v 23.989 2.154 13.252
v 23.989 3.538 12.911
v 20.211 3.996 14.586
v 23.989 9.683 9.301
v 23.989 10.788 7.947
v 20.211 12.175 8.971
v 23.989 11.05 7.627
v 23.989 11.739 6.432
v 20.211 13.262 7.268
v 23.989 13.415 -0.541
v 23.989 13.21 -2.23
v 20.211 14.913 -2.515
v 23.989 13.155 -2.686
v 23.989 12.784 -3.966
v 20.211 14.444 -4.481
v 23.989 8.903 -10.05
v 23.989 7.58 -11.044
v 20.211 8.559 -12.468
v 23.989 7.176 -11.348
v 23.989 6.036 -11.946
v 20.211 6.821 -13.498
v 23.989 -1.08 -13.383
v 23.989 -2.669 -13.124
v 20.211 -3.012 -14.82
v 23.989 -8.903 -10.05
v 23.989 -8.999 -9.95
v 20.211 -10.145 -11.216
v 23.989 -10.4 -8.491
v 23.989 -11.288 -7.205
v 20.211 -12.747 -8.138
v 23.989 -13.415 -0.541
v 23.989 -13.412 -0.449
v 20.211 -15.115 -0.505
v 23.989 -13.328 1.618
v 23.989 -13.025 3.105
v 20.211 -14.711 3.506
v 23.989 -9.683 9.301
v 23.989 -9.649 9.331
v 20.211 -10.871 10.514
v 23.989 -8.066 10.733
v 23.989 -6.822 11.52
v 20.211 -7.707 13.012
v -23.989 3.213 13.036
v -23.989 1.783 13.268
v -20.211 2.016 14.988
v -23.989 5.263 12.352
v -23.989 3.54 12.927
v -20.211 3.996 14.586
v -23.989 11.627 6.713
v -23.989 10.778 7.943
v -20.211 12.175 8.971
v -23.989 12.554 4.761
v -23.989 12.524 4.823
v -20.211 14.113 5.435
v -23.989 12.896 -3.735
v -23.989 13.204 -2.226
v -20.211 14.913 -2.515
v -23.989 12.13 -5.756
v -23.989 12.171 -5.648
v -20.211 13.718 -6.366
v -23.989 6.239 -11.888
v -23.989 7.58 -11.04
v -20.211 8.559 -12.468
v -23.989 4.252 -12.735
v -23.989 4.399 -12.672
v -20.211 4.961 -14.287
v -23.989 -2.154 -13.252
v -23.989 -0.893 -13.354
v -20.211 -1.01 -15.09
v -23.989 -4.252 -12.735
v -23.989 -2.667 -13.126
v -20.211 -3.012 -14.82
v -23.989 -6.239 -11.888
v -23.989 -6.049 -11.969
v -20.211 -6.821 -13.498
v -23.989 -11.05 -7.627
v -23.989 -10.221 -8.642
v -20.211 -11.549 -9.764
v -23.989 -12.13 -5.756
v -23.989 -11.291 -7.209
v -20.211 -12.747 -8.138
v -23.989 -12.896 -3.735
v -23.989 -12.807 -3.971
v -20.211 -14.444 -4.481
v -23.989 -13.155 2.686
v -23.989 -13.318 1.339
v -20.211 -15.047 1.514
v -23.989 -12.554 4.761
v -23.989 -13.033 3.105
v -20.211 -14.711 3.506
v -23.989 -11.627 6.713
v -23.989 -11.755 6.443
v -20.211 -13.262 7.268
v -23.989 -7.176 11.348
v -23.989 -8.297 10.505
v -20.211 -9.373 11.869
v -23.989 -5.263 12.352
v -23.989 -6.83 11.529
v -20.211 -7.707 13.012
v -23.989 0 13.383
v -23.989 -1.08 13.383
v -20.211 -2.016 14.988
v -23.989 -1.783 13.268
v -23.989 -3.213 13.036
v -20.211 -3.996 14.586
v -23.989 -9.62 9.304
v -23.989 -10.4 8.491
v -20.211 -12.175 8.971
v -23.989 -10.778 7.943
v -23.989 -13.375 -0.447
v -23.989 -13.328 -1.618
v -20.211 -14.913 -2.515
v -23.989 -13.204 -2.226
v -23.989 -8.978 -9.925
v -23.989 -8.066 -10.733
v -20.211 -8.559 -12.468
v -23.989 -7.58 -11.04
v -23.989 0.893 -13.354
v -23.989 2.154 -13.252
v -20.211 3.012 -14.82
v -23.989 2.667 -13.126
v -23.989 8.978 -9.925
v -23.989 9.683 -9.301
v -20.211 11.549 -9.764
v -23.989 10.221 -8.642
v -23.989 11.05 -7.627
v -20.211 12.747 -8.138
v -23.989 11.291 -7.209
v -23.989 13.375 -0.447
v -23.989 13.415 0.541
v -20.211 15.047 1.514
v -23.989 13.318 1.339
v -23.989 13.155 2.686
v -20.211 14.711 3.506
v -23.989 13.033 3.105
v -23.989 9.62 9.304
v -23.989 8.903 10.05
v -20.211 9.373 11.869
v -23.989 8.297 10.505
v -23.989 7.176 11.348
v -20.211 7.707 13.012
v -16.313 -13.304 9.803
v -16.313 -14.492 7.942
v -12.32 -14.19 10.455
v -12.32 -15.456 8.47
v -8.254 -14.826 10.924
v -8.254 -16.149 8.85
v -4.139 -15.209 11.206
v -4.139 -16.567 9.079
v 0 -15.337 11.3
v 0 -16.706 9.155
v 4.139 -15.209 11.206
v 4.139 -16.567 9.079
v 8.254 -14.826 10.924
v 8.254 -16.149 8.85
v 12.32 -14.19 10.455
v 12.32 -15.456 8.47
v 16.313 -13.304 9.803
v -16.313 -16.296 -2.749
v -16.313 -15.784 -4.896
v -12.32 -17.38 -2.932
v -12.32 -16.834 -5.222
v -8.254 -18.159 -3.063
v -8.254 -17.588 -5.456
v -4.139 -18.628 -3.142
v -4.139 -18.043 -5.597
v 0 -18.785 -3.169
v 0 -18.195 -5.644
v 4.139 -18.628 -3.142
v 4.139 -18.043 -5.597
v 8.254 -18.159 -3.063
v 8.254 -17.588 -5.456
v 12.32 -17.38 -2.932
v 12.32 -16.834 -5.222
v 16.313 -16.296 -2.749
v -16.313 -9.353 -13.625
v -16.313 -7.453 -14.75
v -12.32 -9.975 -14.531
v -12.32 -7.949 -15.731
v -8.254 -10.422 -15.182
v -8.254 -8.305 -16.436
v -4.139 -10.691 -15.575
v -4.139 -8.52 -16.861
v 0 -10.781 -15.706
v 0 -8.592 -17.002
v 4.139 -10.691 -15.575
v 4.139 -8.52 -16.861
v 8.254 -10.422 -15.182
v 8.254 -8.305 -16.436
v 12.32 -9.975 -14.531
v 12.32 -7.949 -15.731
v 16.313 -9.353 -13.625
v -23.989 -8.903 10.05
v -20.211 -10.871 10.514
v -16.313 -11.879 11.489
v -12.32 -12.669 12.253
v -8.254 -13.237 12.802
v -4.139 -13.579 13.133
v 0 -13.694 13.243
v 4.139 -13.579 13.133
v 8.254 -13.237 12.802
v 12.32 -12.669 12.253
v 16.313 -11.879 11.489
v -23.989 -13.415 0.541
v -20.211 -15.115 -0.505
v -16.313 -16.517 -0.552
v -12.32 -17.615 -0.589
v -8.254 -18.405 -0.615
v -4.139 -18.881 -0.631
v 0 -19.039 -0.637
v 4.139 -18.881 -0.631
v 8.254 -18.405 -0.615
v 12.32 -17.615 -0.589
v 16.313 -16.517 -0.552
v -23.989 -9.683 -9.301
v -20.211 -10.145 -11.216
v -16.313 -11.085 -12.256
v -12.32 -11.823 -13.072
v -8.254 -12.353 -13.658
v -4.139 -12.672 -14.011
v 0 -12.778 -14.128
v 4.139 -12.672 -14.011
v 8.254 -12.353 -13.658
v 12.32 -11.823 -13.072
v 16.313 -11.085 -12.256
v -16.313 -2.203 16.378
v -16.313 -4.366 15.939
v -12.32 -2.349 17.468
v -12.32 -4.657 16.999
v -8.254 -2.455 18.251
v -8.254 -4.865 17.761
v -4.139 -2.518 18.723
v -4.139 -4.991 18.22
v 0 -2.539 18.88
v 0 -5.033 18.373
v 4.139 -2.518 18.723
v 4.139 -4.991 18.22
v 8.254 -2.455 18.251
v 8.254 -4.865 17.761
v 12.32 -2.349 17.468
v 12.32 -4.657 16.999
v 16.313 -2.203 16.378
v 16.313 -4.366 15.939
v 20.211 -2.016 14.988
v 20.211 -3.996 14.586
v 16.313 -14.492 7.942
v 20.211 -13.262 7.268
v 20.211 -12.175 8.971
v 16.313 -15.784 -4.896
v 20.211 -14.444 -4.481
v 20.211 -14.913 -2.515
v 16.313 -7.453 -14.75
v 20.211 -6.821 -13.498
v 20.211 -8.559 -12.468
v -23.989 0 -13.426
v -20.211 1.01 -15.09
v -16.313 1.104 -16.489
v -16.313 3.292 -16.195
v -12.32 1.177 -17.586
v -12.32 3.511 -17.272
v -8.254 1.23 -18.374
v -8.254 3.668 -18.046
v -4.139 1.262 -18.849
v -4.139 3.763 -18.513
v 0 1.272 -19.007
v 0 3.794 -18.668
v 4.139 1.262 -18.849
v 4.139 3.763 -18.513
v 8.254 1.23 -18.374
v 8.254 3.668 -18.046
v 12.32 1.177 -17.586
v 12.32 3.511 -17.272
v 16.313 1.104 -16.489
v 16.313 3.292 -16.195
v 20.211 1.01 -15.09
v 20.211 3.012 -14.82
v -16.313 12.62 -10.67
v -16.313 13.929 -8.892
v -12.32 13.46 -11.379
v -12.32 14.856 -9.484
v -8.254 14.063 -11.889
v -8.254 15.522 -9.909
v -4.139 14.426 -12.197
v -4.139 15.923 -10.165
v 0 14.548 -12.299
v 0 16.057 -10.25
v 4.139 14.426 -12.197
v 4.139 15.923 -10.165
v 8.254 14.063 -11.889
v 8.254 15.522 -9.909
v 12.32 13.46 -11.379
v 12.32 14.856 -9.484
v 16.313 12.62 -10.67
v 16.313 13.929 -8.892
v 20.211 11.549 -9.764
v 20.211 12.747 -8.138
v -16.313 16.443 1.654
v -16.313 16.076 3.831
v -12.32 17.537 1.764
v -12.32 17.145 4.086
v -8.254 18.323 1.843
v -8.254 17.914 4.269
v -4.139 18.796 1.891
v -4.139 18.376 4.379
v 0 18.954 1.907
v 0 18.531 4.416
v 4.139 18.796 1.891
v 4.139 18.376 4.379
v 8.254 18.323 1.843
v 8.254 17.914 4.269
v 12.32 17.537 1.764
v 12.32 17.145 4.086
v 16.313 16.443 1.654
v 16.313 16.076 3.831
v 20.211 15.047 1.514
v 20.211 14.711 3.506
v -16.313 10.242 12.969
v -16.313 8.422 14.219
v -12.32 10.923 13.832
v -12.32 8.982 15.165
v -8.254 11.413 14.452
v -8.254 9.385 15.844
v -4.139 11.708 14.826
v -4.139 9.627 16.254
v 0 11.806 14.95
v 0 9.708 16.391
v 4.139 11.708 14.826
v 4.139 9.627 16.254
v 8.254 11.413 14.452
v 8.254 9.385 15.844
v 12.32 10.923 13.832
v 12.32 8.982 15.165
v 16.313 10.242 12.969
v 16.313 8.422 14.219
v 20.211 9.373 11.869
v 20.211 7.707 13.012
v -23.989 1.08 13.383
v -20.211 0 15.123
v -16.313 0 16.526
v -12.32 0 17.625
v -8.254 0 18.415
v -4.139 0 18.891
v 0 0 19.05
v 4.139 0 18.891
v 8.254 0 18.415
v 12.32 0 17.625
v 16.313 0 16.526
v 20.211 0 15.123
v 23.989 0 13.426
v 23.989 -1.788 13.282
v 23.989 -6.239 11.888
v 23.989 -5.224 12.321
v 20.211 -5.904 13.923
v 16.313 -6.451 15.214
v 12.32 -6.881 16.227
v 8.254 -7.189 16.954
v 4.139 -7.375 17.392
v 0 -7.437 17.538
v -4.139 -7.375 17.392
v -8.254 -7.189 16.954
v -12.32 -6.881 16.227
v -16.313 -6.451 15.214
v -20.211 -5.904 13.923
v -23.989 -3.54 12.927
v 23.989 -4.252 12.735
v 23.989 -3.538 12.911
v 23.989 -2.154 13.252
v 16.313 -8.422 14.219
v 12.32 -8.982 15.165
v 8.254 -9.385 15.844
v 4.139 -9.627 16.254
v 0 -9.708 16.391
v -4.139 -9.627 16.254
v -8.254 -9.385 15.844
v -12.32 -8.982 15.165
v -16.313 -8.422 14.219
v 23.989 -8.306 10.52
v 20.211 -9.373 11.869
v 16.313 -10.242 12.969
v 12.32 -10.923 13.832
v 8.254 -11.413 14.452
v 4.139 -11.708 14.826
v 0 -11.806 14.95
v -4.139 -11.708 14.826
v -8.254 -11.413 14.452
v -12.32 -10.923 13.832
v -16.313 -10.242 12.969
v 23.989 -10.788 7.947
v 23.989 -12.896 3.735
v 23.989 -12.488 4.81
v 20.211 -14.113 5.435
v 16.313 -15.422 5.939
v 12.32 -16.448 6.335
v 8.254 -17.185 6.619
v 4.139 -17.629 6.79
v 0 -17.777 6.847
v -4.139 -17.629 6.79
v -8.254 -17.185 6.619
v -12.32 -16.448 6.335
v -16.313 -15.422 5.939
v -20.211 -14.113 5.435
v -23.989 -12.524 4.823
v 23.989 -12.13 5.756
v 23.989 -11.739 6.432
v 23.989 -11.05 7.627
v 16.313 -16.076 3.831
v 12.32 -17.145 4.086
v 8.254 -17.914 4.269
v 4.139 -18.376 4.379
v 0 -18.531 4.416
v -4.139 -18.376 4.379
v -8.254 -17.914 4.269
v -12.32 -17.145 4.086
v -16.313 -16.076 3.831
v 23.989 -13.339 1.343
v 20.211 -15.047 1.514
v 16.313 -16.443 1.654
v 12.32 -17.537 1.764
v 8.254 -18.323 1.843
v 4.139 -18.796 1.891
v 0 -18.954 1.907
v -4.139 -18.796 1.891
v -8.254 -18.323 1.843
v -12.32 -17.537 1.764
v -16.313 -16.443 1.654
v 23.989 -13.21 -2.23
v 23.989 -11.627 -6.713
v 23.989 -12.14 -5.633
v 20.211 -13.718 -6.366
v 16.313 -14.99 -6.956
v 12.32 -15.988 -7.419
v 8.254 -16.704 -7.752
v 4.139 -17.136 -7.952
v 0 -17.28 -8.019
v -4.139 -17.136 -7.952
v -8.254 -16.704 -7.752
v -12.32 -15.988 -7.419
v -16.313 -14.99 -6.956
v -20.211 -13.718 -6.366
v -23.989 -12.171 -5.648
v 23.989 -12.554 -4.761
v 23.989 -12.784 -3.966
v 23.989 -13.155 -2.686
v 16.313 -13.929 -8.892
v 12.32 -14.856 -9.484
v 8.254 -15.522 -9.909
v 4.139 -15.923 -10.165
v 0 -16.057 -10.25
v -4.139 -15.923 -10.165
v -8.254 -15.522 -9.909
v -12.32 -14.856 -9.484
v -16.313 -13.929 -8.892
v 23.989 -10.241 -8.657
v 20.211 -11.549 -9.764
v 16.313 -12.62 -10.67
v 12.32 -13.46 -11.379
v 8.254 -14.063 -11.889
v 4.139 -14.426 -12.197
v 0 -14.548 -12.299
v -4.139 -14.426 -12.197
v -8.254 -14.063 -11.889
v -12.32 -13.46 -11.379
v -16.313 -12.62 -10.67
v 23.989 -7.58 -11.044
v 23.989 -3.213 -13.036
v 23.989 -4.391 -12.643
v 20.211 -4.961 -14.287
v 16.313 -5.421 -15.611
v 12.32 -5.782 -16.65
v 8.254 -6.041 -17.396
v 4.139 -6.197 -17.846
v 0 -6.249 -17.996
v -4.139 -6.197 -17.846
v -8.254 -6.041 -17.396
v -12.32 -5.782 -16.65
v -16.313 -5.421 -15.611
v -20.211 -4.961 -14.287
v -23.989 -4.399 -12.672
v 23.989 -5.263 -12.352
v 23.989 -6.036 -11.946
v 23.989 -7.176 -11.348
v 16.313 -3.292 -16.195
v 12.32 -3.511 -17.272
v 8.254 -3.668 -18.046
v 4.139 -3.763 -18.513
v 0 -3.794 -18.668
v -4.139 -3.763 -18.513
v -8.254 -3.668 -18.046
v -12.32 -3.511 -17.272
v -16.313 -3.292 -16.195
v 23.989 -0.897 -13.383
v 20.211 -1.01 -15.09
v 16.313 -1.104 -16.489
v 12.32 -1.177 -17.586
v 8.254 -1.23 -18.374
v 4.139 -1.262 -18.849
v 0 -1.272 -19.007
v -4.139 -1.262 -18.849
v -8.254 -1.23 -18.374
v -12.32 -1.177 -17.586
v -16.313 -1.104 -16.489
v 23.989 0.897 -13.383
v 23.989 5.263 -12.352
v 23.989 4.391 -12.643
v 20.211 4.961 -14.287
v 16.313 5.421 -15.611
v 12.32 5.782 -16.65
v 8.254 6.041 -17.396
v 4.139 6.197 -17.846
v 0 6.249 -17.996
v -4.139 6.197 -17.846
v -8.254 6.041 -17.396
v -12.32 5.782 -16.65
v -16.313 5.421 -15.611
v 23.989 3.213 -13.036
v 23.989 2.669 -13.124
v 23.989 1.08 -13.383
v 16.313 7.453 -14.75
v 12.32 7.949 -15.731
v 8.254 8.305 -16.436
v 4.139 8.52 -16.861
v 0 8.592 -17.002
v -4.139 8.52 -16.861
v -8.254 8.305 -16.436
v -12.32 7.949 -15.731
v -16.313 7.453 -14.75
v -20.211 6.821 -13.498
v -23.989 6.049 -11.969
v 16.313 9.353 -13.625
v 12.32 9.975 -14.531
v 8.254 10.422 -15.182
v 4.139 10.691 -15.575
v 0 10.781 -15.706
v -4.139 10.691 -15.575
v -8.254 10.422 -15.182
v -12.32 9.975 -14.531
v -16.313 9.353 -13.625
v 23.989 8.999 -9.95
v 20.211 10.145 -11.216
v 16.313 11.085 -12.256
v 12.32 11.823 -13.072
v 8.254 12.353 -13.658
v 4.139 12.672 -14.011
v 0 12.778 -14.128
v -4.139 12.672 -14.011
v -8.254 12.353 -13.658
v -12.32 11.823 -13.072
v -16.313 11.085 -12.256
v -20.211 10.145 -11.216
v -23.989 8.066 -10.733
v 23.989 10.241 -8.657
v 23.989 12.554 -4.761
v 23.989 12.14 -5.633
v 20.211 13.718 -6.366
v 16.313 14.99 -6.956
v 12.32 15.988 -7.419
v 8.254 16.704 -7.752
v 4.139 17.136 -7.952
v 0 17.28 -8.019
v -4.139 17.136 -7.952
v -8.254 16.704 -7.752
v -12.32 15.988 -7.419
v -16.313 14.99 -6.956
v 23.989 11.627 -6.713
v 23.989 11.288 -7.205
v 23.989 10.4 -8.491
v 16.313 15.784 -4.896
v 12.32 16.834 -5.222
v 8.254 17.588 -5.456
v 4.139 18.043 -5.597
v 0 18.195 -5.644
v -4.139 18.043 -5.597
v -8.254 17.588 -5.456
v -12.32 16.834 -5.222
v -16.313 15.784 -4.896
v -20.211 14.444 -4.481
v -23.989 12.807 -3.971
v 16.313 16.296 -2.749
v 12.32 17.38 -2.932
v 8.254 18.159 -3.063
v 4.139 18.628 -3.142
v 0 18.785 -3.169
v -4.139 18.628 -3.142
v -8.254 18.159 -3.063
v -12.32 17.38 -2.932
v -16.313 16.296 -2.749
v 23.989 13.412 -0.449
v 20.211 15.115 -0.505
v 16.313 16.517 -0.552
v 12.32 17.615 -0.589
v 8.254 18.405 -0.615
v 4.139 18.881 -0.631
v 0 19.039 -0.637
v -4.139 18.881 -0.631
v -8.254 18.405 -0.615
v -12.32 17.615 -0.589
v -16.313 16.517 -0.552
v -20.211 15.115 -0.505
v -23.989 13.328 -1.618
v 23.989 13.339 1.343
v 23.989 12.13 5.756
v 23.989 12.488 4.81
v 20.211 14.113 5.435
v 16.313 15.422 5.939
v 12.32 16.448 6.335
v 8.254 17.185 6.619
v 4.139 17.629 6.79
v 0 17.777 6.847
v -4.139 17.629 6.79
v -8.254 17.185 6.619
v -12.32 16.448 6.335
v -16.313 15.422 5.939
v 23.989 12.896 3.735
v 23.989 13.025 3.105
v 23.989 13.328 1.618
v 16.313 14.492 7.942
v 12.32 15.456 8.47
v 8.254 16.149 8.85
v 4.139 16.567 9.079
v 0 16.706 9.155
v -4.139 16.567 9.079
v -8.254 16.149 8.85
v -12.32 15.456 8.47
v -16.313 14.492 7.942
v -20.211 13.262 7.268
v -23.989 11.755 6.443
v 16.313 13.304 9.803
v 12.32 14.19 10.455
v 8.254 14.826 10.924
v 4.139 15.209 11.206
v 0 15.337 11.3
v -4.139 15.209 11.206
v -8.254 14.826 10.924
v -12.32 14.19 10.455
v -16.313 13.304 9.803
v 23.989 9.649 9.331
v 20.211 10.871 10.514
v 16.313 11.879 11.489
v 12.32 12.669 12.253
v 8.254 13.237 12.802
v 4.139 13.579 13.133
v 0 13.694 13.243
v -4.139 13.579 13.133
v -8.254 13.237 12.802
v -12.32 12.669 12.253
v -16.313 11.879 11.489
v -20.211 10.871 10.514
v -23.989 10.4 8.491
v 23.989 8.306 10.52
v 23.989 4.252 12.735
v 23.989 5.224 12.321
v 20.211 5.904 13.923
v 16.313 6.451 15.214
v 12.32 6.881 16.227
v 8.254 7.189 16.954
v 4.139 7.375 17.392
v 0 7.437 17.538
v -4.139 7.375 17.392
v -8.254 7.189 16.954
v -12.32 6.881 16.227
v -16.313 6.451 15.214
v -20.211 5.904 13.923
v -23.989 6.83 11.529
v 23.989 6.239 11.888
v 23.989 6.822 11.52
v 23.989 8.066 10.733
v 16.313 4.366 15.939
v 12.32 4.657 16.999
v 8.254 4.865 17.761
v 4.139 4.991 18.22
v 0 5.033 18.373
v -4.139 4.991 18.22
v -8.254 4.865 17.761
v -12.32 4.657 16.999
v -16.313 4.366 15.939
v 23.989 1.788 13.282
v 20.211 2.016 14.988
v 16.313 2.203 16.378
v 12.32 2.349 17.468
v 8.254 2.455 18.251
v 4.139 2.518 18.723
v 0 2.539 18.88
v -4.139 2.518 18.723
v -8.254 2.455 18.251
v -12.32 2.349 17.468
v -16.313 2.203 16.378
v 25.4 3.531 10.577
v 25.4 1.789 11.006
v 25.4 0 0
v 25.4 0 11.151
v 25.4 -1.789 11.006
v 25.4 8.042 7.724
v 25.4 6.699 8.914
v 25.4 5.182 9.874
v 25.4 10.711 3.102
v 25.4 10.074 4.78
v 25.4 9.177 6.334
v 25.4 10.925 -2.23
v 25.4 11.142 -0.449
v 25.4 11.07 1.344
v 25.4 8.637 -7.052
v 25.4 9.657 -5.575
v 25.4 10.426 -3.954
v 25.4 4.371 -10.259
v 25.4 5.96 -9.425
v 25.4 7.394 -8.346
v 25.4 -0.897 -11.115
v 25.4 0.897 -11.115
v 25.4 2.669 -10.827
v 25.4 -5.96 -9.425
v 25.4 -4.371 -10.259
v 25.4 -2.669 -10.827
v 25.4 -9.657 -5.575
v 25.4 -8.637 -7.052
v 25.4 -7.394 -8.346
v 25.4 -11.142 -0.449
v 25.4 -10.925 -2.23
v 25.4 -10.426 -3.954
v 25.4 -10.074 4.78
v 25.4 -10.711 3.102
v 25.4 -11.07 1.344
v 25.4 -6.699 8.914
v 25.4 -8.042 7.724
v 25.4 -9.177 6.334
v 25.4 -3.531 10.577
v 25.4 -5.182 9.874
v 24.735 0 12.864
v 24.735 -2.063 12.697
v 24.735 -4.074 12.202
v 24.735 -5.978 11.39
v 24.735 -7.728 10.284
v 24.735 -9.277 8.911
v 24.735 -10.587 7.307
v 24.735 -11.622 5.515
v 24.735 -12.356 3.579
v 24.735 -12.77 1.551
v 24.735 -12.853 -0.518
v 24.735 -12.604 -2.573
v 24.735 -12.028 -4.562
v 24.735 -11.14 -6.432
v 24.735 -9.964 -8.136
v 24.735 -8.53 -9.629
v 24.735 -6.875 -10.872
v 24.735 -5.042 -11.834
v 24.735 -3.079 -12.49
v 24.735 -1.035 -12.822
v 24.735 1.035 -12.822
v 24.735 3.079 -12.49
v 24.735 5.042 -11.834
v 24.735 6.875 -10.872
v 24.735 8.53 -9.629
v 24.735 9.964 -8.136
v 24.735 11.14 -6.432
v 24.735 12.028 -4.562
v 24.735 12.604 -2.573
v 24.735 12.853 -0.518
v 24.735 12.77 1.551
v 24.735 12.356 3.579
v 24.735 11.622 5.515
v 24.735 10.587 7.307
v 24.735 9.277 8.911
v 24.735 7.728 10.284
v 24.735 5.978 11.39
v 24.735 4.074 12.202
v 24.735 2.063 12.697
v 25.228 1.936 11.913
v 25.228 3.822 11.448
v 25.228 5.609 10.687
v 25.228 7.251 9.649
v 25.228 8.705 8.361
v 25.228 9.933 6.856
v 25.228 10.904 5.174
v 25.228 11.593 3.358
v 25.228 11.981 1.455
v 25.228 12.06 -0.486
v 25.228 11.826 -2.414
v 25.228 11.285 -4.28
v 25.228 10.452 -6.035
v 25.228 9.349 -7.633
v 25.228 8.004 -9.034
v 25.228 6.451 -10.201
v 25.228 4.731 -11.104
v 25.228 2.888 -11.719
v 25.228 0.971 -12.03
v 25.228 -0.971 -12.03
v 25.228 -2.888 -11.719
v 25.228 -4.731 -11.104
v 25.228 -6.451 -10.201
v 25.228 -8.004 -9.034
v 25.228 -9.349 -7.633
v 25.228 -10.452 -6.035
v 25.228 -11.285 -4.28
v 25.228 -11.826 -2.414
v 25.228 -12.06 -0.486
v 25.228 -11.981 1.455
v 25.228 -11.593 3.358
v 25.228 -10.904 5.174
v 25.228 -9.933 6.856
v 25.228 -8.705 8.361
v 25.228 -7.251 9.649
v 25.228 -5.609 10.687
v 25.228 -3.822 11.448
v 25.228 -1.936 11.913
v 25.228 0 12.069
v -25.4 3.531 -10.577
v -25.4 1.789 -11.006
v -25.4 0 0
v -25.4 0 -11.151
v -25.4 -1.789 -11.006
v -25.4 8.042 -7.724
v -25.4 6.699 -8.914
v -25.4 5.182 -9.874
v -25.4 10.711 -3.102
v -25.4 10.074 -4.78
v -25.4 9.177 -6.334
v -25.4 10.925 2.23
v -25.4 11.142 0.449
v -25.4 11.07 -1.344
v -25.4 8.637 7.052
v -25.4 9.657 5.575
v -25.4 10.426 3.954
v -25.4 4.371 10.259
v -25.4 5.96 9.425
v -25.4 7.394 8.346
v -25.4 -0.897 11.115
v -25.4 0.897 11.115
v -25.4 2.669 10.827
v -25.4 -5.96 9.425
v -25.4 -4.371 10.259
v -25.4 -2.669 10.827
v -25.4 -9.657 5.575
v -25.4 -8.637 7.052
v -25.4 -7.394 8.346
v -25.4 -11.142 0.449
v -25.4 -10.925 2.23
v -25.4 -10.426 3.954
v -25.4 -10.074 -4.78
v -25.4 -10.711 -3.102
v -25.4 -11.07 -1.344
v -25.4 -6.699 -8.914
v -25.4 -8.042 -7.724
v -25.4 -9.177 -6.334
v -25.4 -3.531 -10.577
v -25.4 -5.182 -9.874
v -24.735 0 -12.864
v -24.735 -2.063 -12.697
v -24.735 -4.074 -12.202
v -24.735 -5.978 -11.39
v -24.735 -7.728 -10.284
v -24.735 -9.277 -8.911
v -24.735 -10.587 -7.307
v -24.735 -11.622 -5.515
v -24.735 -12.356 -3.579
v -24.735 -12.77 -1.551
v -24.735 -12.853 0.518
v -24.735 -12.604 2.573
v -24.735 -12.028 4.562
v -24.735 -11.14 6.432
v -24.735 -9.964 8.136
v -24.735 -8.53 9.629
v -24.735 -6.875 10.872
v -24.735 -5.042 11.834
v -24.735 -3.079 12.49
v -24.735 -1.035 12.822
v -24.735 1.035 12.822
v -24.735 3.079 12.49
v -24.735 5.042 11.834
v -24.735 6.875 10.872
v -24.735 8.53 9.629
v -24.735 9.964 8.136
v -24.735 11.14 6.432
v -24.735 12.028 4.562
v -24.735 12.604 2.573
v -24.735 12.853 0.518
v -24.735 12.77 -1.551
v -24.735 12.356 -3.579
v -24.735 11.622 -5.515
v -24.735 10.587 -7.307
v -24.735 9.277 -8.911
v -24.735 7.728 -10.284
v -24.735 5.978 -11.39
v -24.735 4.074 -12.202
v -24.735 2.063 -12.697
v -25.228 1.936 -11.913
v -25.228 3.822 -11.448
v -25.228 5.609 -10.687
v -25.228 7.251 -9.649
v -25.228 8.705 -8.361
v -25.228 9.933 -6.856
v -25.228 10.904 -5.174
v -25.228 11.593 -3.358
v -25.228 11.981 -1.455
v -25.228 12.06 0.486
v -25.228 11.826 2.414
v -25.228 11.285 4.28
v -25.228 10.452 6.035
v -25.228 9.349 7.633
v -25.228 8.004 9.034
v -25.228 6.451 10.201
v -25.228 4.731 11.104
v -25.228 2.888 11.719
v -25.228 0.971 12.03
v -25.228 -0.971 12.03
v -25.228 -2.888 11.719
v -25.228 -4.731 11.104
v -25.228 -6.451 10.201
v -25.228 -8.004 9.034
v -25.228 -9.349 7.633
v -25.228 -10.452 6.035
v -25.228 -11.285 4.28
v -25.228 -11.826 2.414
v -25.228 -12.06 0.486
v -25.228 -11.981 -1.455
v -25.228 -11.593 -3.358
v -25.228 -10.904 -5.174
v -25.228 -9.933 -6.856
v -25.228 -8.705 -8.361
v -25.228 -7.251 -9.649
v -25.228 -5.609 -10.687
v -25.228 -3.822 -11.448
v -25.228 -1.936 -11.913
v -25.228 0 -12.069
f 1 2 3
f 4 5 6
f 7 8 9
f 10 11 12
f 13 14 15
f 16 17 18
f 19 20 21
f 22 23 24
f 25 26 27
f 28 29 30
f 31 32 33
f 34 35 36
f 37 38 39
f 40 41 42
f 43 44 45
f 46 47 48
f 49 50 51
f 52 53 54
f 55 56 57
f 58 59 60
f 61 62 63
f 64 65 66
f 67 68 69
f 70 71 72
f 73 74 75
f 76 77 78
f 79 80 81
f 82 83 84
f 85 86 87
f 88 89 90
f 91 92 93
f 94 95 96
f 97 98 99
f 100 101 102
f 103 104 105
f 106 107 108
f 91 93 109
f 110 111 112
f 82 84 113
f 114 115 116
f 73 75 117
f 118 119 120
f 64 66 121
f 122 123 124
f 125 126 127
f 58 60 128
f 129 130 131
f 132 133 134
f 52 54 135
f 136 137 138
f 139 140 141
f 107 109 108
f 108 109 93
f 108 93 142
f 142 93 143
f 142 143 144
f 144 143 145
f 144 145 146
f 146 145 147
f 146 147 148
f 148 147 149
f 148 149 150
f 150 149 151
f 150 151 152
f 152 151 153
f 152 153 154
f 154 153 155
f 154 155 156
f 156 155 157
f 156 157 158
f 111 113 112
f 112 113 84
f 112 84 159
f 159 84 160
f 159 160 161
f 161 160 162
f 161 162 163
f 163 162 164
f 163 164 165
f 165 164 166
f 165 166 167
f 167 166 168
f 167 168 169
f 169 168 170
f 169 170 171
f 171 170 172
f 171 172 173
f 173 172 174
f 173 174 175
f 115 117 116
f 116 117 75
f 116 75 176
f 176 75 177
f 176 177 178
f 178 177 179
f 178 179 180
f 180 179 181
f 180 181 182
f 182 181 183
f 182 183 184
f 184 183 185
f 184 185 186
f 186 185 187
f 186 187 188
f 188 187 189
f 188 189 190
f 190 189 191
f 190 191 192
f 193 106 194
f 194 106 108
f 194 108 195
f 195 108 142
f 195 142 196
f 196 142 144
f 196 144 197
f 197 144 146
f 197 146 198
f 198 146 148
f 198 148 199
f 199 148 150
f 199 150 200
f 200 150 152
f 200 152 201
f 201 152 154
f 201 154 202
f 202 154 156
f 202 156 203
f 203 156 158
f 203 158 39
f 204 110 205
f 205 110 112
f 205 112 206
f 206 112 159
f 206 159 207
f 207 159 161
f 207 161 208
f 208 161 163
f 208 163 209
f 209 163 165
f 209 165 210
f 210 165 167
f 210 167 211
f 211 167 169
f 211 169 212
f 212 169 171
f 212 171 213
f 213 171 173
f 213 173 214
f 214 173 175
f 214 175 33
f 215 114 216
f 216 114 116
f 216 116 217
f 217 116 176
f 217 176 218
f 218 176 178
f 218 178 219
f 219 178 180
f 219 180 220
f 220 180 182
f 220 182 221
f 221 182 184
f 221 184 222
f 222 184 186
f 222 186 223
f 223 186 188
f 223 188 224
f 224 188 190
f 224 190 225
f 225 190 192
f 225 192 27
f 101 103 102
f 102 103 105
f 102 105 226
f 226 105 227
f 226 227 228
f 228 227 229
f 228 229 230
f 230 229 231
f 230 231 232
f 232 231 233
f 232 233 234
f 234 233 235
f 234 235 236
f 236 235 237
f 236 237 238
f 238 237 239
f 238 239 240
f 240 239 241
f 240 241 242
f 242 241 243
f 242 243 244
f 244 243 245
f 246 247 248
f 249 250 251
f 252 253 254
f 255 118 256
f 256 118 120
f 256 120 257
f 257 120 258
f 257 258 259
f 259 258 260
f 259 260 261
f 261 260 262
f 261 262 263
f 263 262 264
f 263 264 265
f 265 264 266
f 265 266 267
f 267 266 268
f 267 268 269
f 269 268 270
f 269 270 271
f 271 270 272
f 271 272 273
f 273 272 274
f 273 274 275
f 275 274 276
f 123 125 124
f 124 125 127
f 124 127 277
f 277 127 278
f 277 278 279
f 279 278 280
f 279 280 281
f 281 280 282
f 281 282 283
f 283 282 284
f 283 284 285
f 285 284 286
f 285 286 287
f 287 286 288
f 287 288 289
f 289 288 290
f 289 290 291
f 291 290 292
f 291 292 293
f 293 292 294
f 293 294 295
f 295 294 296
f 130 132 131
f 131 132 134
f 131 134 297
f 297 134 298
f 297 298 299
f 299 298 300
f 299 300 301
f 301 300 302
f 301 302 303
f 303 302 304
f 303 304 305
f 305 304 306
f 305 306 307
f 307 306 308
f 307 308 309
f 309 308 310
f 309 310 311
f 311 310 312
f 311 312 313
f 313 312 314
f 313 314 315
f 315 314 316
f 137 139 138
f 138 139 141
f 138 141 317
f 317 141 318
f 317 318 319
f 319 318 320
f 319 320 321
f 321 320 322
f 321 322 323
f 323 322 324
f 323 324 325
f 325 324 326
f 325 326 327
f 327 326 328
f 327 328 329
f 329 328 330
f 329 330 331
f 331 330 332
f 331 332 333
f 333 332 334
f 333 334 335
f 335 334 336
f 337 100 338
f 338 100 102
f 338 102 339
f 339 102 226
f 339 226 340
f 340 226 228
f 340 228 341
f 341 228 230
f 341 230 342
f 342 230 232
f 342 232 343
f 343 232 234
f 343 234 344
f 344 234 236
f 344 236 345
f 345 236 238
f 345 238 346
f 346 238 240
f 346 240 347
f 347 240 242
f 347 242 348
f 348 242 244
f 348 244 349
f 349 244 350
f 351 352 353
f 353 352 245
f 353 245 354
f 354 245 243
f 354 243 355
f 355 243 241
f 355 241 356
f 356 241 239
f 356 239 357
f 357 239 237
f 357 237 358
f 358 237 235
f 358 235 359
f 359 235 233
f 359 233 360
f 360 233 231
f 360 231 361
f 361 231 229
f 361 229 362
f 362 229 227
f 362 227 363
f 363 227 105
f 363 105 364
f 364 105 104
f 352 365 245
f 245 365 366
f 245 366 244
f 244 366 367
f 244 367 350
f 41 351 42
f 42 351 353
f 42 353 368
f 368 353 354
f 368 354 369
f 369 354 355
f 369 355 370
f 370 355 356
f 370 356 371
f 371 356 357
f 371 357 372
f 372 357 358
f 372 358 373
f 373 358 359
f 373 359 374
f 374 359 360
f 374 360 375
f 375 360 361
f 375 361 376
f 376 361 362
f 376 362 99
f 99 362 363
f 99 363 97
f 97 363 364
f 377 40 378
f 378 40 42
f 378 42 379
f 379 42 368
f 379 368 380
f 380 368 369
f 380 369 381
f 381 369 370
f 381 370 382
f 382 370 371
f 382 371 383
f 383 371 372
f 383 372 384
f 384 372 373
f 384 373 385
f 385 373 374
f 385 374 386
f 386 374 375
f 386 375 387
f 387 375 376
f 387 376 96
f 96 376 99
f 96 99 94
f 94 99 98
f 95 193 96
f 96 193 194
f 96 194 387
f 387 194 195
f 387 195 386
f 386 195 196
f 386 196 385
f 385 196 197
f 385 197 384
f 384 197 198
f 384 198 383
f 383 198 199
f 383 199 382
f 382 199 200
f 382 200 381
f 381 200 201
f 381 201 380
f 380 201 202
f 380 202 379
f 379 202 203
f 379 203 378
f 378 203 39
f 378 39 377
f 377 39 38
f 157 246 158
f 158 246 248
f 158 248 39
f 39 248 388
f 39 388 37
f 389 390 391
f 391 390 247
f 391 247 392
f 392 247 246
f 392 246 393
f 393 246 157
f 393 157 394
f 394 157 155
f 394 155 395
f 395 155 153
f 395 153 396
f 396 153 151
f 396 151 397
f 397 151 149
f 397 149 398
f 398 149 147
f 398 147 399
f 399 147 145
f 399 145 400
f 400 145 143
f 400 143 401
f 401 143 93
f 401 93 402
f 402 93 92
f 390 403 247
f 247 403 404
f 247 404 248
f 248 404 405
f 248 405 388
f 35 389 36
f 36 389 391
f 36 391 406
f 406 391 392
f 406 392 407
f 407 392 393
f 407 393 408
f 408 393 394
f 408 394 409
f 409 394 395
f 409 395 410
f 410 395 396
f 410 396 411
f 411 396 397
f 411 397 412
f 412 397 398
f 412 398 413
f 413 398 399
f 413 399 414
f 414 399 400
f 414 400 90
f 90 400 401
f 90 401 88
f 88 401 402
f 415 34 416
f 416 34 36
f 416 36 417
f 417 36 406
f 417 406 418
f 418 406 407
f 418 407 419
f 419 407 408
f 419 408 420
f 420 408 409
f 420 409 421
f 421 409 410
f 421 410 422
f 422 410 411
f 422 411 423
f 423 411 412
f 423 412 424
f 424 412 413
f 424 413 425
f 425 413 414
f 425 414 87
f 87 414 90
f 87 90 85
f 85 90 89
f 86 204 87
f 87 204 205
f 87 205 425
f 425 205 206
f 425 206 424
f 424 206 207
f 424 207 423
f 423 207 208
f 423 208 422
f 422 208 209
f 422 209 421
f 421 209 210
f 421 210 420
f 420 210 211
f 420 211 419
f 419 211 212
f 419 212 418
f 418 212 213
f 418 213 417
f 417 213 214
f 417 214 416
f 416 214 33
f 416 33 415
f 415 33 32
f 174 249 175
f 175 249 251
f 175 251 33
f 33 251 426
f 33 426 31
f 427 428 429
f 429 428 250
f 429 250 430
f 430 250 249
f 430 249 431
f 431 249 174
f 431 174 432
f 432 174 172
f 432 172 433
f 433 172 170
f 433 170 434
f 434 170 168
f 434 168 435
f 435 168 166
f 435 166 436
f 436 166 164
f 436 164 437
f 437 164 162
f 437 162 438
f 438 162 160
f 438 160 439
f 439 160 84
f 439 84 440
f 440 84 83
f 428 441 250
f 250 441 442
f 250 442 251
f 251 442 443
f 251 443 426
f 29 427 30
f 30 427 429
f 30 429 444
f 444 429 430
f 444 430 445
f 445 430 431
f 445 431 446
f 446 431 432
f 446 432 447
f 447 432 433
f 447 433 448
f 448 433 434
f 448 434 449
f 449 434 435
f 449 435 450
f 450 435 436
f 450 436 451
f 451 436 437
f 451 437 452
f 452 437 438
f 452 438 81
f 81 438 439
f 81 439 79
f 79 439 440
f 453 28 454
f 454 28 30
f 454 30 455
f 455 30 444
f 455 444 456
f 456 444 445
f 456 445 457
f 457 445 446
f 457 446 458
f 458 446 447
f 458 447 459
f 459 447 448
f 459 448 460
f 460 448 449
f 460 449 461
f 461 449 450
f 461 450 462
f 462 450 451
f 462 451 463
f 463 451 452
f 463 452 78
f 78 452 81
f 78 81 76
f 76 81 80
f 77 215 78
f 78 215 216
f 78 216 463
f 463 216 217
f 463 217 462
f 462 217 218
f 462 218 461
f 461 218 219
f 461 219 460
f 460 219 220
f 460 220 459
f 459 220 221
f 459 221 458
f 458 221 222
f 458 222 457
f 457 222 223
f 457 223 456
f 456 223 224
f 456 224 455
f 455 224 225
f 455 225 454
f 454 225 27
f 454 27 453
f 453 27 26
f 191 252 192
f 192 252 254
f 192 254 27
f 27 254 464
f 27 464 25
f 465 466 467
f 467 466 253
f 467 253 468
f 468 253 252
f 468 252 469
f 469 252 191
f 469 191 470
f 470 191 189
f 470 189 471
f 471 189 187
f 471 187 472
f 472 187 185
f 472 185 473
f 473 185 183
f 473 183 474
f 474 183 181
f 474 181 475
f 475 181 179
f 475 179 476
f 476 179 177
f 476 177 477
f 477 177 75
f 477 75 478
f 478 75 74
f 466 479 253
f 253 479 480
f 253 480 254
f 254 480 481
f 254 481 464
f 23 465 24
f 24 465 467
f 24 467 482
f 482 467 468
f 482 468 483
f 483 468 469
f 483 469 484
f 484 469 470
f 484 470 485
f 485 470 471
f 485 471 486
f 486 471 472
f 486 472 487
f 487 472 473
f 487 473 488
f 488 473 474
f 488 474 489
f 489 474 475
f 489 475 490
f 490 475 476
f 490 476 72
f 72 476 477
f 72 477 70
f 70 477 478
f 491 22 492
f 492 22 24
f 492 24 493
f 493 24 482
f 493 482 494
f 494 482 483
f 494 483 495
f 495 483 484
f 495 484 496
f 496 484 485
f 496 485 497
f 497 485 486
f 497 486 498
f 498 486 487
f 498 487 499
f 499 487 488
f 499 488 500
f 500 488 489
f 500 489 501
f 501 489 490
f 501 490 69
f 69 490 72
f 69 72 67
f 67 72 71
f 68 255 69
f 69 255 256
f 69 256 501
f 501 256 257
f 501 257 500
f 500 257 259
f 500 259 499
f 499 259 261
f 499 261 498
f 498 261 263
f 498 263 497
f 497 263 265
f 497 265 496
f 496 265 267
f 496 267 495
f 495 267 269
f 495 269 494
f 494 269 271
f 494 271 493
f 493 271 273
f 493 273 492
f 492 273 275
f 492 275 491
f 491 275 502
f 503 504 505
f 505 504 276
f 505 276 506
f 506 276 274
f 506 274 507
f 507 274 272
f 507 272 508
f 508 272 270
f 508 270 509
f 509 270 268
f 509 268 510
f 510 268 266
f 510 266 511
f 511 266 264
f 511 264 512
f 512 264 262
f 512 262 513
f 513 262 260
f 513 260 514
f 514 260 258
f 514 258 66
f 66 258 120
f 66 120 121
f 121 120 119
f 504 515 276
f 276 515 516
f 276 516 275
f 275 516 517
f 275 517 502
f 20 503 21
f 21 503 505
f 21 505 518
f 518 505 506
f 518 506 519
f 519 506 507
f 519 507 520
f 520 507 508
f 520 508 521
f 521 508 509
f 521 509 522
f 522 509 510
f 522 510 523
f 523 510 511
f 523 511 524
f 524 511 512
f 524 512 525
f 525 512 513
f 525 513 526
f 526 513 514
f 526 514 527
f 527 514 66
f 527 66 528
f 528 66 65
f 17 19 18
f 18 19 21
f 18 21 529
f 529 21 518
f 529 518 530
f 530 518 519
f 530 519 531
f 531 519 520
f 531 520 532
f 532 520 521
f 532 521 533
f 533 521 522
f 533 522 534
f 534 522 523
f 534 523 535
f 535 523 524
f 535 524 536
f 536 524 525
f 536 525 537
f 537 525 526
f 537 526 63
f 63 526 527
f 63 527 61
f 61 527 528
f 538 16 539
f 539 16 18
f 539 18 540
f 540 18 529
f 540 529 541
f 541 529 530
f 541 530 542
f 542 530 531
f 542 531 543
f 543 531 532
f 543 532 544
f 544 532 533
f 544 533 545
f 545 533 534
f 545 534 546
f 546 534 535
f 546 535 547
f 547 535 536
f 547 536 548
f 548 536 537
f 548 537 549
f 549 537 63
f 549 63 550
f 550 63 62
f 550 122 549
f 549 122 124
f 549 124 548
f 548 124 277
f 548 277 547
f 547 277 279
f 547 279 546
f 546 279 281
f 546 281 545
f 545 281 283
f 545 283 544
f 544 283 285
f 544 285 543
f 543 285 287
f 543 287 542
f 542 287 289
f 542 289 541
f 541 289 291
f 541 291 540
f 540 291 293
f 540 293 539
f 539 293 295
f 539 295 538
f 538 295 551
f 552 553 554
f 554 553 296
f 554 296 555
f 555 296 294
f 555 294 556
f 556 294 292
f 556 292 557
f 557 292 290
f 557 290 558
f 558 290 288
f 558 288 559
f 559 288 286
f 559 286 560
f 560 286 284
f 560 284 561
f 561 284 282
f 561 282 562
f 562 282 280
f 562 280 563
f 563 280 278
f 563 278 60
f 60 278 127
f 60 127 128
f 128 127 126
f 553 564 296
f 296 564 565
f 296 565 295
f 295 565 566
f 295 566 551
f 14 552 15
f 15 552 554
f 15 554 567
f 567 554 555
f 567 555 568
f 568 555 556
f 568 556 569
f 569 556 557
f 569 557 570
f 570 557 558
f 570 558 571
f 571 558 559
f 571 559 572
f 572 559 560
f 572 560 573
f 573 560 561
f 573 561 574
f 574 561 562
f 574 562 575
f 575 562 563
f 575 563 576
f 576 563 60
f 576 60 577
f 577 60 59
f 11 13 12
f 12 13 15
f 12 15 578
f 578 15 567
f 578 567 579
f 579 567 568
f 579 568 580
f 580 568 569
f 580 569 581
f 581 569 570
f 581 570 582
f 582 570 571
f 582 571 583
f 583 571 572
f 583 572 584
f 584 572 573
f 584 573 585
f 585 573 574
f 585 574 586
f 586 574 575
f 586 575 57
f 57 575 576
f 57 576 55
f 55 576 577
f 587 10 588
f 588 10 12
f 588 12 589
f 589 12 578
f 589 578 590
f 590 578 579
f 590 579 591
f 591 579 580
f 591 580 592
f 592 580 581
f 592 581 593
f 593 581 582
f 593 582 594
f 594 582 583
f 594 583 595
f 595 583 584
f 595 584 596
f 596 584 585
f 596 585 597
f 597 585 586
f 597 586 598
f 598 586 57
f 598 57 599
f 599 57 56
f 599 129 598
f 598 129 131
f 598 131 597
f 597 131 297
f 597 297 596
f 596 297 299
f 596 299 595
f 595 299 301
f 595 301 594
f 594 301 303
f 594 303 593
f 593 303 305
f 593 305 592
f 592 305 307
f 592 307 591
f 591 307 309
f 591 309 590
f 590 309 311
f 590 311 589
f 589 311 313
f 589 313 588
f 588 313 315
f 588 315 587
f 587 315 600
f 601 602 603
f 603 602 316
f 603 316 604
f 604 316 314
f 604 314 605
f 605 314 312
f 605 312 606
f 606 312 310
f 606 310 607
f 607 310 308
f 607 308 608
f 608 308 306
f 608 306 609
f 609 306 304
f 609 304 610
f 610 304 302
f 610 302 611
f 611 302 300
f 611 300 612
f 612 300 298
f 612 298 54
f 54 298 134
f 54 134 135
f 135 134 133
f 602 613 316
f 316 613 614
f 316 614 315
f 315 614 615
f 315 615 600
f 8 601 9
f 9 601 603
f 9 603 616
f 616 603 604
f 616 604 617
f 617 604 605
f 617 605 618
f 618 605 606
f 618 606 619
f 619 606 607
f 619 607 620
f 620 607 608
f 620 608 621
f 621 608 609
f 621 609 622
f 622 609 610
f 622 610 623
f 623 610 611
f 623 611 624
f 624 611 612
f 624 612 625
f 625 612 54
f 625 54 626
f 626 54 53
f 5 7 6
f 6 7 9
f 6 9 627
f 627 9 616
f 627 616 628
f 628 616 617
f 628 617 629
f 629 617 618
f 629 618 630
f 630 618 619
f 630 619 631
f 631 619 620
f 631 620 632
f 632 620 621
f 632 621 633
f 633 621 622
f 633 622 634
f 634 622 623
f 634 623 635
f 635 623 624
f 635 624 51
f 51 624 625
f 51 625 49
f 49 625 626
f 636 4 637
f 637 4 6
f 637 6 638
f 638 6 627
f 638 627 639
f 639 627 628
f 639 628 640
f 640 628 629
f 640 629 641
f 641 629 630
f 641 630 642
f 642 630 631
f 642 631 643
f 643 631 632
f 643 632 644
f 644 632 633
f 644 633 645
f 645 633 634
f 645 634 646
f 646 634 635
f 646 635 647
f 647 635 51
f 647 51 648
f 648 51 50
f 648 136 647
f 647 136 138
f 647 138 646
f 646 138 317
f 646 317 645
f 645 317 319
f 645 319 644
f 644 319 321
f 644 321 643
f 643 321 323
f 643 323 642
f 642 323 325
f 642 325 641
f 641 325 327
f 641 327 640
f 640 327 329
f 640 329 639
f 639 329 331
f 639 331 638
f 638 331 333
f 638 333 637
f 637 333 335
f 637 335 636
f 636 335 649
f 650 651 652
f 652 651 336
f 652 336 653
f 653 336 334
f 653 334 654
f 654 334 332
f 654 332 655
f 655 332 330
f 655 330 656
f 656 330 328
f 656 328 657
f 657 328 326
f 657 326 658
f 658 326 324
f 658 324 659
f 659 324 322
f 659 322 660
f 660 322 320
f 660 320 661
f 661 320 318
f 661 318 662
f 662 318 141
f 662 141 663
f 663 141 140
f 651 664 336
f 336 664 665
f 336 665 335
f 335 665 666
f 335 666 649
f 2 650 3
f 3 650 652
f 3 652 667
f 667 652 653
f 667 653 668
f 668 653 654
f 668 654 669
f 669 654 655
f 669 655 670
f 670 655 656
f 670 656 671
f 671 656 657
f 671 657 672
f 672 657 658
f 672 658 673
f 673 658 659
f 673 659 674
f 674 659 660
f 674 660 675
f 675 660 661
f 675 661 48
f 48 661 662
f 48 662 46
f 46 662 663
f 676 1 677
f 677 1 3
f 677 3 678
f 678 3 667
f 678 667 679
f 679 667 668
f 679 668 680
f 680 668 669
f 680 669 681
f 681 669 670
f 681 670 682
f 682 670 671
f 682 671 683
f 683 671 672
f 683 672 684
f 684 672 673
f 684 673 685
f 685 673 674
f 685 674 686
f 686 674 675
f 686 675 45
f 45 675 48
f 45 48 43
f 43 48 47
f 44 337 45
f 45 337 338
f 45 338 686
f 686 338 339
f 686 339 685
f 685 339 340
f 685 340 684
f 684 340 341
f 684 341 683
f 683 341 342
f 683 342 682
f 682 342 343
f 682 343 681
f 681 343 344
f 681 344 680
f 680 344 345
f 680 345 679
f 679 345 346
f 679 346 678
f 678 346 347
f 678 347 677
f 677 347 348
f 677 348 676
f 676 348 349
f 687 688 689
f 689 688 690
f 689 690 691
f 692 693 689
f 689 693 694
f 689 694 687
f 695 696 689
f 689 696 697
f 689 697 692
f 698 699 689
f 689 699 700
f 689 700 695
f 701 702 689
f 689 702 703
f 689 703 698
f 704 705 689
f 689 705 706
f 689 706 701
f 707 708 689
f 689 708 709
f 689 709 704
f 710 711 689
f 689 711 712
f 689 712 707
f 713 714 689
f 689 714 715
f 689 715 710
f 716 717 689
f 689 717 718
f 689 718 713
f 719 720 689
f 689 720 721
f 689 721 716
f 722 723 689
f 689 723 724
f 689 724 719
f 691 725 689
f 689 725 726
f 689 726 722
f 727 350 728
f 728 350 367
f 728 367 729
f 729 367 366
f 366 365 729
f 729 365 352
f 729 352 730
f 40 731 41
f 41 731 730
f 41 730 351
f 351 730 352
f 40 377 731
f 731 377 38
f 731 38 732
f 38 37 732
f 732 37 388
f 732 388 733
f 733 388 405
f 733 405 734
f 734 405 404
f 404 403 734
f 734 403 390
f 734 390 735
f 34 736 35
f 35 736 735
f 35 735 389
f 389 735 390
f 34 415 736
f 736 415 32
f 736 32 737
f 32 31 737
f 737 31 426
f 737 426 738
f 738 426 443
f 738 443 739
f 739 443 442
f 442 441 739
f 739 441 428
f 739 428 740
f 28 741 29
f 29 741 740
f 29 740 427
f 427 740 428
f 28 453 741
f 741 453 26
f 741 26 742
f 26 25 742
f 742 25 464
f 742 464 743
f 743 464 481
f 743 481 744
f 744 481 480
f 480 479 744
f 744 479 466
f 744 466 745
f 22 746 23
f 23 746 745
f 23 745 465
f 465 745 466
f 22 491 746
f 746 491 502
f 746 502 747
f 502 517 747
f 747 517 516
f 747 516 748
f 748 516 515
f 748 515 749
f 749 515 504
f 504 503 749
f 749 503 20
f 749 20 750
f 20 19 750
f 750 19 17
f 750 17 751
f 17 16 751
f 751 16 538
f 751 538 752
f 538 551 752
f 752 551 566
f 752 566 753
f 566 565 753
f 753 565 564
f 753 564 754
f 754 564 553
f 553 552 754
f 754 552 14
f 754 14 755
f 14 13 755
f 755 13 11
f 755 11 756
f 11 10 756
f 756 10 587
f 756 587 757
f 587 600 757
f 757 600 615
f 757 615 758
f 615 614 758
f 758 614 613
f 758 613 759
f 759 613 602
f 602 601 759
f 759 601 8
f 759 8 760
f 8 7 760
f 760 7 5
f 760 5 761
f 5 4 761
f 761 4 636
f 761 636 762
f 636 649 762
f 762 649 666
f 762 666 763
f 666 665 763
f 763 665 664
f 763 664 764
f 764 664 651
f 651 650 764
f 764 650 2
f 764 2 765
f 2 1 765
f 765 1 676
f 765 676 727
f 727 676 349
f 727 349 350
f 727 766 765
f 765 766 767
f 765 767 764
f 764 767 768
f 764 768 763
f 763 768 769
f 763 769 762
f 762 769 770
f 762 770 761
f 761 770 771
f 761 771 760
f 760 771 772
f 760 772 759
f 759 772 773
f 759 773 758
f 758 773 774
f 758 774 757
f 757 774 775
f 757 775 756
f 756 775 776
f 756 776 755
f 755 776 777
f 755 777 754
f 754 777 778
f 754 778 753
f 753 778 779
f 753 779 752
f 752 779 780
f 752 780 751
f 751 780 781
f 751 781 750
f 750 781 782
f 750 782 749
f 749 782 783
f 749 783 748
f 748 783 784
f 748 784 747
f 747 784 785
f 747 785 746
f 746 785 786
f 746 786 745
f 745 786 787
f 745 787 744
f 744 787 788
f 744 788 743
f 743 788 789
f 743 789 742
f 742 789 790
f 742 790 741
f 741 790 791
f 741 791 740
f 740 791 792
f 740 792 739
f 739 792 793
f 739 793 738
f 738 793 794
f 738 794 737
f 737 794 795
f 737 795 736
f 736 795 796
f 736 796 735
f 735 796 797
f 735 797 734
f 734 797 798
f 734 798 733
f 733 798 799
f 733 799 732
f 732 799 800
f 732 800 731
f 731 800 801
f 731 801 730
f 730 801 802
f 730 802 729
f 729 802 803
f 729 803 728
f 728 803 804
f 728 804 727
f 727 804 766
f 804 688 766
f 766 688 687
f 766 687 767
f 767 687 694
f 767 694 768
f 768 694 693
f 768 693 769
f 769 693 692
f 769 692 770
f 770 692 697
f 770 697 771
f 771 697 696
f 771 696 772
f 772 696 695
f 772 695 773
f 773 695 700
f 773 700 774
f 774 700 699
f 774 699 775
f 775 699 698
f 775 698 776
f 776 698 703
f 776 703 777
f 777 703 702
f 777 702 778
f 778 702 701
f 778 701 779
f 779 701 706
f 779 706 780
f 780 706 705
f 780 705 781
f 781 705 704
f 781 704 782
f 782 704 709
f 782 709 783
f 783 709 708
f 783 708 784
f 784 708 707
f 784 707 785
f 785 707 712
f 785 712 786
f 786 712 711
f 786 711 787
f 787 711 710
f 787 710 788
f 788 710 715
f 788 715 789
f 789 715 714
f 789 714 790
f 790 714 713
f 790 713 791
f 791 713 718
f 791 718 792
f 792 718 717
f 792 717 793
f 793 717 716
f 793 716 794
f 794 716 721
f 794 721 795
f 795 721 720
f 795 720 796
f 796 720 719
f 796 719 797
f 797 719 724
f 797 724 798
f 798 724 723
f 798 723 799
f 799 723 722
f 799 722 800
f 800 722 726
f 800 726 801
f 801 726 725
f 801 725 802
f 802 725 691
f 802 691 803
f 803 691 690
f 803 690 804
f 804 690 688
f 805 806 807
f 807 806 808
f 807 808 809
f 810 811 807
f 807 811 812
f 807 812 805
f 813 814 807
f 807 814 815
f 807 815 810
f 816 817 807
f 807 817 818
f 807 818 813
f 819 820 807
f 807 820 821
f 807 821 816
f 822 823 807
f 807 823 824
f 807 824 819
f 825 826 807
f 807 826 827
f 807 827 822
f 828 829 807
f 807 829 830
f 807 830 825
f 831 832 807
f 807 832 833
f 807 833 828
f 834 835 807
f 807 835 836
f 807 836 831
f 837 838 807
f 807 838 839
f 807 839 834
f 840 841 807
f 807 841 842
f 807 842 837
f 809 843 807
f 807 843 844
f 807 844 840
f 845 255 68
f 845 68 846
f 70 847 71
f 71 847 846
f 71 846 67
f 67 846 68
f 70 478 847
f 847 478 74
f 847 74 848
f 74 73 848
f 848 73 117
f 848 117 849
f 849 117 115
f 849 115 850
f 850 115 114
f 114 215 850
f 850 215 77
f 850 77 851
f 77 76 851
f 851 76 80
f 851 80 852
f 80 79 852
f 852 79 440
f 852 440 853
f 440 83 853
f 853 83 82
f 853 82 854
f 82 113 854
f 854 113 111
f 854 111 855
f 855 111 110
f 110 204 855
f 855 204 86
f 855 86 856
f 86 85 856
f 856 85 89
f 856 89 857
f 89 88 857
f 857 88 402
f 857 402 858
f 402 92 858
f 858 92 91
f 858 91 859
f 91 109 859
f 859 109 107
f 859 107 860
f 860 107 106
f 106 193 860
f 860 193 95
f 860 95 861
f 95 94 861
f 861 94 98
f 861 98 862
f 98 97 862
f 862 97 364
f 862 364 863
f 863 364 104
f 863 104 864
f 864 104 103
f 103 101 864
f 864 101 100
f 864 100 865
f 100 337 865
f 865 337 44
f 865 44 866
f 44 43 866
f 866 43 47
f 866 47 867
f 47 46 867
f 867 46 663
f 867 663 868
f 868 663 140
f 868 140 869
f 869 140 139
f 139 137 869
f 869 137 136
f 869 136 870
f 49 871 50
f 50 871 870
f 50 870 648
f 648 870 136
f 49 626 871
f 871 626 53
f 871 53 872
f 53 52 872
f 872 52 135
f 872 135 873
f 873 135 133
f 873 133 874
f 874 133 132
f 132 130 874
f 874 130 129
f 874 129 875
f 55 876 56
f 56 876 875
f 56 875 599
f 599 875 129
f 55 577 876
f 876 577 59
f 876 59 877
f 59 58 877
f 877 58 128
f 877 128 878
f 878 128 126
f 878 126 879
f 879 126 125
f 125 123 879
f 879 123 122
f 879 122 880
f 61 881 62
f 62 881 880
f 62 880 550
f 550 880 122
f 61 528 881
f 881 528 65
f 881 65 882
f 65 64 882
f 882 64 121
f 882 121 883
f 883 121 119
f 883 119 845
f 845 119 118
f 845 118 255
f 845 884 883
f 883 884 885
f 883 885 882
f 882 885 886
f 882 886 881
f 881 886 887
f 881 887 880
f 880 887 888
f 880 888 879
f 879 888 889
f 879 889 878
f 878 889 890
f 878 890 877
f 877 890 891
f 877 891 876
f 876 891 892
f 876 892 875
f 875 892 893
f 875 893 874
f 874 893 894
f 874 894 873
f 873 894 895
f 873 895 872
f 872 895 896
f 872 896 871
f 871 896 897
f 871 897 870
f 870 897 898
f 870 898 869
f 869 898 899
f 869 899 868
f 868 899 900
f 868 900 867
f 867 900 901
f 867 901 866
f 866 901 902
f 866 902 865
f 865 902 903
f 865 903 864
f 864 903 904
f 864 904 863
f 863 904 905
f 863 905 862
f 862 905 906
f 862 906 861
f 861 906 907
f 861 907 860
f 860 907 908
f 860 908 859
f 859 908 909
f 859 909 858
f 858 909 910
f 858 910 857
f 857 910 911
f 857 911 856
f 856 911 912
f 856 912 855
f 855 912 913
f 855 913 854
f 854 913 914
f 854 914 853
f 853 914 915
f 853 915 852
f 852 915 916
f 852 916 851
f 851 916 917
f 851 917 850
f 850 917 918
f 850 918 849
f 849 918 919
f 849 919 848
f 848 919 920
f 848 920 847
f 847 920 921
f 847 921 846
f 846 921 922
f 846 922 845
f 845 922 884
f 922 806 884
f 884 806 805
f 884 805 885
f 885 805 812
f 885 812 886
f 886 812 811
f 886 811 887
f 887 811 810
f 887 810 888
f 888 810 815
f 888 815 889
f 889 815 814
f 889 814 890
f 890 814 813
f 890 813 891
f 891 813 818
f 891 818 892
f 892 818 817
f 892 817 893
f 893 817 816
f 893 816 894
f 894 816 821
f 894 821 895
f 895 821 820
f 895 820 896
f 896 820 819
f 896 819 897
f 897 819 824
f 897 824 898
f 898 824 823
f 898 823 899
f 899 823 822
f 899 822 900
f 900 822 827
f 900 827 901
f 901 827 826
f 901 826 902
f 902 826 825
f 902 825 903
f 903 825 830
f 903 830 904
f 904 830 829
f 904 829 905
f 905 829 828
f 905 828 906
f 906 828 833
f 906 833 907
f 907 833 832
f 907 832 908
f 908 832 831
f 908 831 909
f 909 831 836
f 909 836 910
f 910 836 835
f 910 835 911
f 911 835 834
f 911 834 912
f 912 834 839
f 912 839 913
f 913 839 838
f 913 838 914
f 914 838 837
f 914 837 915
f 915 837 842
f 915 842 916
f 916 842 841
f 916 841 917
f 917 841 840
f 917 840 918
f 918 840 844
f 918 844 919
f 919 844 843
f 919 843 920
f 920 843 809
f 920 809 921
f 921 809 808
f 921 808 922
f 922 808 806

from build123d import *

# Parameters (mm, degrees)
FILLET1_R            = 2.54
FILLET1_OF_MIRROR2_R = 2.54


with BuildPart() as part:
    # Sketch1 → Revolve2 (revolve)
    with BuildSketch(Plane.XY):
        with BuildLine():
            ThreePointArc((0, 19.05), (13.090860361, 17.438441445), (25.4, 12.7))
            Line((25.4, 12.7), (25.4, 0))
            Line((25.4, 0), (0, 0))
            Line((0, 0), (0, 19.05))
        make_face()
    revolve2 = revolve(axis=Axis((0, 0, 0), (1, 0, 0)))

    # Fillet1
    fillet1_edges = [part.edges().sort_by_distance(p)[0] for p in [
        (25.4, -12.7, 0),
    ]]
    fillet(fillet1_edges, radius=FILLET1_R)

    # Mirror2: Revolve2 across plane
    add(revolve2.mirror(Plane.ZY))

    # Fillet1 of Mirror2
    fillet1_of_mirror2_edges = [part.edges().sort_by_distance(p)[0] for p in [
        (-25.4, -12.7, 0),
    ]]
    fillet(fillet1_of_mirror2_edges, radius=FILLET1_OF_MIRROR2_R)


solid = part.part
